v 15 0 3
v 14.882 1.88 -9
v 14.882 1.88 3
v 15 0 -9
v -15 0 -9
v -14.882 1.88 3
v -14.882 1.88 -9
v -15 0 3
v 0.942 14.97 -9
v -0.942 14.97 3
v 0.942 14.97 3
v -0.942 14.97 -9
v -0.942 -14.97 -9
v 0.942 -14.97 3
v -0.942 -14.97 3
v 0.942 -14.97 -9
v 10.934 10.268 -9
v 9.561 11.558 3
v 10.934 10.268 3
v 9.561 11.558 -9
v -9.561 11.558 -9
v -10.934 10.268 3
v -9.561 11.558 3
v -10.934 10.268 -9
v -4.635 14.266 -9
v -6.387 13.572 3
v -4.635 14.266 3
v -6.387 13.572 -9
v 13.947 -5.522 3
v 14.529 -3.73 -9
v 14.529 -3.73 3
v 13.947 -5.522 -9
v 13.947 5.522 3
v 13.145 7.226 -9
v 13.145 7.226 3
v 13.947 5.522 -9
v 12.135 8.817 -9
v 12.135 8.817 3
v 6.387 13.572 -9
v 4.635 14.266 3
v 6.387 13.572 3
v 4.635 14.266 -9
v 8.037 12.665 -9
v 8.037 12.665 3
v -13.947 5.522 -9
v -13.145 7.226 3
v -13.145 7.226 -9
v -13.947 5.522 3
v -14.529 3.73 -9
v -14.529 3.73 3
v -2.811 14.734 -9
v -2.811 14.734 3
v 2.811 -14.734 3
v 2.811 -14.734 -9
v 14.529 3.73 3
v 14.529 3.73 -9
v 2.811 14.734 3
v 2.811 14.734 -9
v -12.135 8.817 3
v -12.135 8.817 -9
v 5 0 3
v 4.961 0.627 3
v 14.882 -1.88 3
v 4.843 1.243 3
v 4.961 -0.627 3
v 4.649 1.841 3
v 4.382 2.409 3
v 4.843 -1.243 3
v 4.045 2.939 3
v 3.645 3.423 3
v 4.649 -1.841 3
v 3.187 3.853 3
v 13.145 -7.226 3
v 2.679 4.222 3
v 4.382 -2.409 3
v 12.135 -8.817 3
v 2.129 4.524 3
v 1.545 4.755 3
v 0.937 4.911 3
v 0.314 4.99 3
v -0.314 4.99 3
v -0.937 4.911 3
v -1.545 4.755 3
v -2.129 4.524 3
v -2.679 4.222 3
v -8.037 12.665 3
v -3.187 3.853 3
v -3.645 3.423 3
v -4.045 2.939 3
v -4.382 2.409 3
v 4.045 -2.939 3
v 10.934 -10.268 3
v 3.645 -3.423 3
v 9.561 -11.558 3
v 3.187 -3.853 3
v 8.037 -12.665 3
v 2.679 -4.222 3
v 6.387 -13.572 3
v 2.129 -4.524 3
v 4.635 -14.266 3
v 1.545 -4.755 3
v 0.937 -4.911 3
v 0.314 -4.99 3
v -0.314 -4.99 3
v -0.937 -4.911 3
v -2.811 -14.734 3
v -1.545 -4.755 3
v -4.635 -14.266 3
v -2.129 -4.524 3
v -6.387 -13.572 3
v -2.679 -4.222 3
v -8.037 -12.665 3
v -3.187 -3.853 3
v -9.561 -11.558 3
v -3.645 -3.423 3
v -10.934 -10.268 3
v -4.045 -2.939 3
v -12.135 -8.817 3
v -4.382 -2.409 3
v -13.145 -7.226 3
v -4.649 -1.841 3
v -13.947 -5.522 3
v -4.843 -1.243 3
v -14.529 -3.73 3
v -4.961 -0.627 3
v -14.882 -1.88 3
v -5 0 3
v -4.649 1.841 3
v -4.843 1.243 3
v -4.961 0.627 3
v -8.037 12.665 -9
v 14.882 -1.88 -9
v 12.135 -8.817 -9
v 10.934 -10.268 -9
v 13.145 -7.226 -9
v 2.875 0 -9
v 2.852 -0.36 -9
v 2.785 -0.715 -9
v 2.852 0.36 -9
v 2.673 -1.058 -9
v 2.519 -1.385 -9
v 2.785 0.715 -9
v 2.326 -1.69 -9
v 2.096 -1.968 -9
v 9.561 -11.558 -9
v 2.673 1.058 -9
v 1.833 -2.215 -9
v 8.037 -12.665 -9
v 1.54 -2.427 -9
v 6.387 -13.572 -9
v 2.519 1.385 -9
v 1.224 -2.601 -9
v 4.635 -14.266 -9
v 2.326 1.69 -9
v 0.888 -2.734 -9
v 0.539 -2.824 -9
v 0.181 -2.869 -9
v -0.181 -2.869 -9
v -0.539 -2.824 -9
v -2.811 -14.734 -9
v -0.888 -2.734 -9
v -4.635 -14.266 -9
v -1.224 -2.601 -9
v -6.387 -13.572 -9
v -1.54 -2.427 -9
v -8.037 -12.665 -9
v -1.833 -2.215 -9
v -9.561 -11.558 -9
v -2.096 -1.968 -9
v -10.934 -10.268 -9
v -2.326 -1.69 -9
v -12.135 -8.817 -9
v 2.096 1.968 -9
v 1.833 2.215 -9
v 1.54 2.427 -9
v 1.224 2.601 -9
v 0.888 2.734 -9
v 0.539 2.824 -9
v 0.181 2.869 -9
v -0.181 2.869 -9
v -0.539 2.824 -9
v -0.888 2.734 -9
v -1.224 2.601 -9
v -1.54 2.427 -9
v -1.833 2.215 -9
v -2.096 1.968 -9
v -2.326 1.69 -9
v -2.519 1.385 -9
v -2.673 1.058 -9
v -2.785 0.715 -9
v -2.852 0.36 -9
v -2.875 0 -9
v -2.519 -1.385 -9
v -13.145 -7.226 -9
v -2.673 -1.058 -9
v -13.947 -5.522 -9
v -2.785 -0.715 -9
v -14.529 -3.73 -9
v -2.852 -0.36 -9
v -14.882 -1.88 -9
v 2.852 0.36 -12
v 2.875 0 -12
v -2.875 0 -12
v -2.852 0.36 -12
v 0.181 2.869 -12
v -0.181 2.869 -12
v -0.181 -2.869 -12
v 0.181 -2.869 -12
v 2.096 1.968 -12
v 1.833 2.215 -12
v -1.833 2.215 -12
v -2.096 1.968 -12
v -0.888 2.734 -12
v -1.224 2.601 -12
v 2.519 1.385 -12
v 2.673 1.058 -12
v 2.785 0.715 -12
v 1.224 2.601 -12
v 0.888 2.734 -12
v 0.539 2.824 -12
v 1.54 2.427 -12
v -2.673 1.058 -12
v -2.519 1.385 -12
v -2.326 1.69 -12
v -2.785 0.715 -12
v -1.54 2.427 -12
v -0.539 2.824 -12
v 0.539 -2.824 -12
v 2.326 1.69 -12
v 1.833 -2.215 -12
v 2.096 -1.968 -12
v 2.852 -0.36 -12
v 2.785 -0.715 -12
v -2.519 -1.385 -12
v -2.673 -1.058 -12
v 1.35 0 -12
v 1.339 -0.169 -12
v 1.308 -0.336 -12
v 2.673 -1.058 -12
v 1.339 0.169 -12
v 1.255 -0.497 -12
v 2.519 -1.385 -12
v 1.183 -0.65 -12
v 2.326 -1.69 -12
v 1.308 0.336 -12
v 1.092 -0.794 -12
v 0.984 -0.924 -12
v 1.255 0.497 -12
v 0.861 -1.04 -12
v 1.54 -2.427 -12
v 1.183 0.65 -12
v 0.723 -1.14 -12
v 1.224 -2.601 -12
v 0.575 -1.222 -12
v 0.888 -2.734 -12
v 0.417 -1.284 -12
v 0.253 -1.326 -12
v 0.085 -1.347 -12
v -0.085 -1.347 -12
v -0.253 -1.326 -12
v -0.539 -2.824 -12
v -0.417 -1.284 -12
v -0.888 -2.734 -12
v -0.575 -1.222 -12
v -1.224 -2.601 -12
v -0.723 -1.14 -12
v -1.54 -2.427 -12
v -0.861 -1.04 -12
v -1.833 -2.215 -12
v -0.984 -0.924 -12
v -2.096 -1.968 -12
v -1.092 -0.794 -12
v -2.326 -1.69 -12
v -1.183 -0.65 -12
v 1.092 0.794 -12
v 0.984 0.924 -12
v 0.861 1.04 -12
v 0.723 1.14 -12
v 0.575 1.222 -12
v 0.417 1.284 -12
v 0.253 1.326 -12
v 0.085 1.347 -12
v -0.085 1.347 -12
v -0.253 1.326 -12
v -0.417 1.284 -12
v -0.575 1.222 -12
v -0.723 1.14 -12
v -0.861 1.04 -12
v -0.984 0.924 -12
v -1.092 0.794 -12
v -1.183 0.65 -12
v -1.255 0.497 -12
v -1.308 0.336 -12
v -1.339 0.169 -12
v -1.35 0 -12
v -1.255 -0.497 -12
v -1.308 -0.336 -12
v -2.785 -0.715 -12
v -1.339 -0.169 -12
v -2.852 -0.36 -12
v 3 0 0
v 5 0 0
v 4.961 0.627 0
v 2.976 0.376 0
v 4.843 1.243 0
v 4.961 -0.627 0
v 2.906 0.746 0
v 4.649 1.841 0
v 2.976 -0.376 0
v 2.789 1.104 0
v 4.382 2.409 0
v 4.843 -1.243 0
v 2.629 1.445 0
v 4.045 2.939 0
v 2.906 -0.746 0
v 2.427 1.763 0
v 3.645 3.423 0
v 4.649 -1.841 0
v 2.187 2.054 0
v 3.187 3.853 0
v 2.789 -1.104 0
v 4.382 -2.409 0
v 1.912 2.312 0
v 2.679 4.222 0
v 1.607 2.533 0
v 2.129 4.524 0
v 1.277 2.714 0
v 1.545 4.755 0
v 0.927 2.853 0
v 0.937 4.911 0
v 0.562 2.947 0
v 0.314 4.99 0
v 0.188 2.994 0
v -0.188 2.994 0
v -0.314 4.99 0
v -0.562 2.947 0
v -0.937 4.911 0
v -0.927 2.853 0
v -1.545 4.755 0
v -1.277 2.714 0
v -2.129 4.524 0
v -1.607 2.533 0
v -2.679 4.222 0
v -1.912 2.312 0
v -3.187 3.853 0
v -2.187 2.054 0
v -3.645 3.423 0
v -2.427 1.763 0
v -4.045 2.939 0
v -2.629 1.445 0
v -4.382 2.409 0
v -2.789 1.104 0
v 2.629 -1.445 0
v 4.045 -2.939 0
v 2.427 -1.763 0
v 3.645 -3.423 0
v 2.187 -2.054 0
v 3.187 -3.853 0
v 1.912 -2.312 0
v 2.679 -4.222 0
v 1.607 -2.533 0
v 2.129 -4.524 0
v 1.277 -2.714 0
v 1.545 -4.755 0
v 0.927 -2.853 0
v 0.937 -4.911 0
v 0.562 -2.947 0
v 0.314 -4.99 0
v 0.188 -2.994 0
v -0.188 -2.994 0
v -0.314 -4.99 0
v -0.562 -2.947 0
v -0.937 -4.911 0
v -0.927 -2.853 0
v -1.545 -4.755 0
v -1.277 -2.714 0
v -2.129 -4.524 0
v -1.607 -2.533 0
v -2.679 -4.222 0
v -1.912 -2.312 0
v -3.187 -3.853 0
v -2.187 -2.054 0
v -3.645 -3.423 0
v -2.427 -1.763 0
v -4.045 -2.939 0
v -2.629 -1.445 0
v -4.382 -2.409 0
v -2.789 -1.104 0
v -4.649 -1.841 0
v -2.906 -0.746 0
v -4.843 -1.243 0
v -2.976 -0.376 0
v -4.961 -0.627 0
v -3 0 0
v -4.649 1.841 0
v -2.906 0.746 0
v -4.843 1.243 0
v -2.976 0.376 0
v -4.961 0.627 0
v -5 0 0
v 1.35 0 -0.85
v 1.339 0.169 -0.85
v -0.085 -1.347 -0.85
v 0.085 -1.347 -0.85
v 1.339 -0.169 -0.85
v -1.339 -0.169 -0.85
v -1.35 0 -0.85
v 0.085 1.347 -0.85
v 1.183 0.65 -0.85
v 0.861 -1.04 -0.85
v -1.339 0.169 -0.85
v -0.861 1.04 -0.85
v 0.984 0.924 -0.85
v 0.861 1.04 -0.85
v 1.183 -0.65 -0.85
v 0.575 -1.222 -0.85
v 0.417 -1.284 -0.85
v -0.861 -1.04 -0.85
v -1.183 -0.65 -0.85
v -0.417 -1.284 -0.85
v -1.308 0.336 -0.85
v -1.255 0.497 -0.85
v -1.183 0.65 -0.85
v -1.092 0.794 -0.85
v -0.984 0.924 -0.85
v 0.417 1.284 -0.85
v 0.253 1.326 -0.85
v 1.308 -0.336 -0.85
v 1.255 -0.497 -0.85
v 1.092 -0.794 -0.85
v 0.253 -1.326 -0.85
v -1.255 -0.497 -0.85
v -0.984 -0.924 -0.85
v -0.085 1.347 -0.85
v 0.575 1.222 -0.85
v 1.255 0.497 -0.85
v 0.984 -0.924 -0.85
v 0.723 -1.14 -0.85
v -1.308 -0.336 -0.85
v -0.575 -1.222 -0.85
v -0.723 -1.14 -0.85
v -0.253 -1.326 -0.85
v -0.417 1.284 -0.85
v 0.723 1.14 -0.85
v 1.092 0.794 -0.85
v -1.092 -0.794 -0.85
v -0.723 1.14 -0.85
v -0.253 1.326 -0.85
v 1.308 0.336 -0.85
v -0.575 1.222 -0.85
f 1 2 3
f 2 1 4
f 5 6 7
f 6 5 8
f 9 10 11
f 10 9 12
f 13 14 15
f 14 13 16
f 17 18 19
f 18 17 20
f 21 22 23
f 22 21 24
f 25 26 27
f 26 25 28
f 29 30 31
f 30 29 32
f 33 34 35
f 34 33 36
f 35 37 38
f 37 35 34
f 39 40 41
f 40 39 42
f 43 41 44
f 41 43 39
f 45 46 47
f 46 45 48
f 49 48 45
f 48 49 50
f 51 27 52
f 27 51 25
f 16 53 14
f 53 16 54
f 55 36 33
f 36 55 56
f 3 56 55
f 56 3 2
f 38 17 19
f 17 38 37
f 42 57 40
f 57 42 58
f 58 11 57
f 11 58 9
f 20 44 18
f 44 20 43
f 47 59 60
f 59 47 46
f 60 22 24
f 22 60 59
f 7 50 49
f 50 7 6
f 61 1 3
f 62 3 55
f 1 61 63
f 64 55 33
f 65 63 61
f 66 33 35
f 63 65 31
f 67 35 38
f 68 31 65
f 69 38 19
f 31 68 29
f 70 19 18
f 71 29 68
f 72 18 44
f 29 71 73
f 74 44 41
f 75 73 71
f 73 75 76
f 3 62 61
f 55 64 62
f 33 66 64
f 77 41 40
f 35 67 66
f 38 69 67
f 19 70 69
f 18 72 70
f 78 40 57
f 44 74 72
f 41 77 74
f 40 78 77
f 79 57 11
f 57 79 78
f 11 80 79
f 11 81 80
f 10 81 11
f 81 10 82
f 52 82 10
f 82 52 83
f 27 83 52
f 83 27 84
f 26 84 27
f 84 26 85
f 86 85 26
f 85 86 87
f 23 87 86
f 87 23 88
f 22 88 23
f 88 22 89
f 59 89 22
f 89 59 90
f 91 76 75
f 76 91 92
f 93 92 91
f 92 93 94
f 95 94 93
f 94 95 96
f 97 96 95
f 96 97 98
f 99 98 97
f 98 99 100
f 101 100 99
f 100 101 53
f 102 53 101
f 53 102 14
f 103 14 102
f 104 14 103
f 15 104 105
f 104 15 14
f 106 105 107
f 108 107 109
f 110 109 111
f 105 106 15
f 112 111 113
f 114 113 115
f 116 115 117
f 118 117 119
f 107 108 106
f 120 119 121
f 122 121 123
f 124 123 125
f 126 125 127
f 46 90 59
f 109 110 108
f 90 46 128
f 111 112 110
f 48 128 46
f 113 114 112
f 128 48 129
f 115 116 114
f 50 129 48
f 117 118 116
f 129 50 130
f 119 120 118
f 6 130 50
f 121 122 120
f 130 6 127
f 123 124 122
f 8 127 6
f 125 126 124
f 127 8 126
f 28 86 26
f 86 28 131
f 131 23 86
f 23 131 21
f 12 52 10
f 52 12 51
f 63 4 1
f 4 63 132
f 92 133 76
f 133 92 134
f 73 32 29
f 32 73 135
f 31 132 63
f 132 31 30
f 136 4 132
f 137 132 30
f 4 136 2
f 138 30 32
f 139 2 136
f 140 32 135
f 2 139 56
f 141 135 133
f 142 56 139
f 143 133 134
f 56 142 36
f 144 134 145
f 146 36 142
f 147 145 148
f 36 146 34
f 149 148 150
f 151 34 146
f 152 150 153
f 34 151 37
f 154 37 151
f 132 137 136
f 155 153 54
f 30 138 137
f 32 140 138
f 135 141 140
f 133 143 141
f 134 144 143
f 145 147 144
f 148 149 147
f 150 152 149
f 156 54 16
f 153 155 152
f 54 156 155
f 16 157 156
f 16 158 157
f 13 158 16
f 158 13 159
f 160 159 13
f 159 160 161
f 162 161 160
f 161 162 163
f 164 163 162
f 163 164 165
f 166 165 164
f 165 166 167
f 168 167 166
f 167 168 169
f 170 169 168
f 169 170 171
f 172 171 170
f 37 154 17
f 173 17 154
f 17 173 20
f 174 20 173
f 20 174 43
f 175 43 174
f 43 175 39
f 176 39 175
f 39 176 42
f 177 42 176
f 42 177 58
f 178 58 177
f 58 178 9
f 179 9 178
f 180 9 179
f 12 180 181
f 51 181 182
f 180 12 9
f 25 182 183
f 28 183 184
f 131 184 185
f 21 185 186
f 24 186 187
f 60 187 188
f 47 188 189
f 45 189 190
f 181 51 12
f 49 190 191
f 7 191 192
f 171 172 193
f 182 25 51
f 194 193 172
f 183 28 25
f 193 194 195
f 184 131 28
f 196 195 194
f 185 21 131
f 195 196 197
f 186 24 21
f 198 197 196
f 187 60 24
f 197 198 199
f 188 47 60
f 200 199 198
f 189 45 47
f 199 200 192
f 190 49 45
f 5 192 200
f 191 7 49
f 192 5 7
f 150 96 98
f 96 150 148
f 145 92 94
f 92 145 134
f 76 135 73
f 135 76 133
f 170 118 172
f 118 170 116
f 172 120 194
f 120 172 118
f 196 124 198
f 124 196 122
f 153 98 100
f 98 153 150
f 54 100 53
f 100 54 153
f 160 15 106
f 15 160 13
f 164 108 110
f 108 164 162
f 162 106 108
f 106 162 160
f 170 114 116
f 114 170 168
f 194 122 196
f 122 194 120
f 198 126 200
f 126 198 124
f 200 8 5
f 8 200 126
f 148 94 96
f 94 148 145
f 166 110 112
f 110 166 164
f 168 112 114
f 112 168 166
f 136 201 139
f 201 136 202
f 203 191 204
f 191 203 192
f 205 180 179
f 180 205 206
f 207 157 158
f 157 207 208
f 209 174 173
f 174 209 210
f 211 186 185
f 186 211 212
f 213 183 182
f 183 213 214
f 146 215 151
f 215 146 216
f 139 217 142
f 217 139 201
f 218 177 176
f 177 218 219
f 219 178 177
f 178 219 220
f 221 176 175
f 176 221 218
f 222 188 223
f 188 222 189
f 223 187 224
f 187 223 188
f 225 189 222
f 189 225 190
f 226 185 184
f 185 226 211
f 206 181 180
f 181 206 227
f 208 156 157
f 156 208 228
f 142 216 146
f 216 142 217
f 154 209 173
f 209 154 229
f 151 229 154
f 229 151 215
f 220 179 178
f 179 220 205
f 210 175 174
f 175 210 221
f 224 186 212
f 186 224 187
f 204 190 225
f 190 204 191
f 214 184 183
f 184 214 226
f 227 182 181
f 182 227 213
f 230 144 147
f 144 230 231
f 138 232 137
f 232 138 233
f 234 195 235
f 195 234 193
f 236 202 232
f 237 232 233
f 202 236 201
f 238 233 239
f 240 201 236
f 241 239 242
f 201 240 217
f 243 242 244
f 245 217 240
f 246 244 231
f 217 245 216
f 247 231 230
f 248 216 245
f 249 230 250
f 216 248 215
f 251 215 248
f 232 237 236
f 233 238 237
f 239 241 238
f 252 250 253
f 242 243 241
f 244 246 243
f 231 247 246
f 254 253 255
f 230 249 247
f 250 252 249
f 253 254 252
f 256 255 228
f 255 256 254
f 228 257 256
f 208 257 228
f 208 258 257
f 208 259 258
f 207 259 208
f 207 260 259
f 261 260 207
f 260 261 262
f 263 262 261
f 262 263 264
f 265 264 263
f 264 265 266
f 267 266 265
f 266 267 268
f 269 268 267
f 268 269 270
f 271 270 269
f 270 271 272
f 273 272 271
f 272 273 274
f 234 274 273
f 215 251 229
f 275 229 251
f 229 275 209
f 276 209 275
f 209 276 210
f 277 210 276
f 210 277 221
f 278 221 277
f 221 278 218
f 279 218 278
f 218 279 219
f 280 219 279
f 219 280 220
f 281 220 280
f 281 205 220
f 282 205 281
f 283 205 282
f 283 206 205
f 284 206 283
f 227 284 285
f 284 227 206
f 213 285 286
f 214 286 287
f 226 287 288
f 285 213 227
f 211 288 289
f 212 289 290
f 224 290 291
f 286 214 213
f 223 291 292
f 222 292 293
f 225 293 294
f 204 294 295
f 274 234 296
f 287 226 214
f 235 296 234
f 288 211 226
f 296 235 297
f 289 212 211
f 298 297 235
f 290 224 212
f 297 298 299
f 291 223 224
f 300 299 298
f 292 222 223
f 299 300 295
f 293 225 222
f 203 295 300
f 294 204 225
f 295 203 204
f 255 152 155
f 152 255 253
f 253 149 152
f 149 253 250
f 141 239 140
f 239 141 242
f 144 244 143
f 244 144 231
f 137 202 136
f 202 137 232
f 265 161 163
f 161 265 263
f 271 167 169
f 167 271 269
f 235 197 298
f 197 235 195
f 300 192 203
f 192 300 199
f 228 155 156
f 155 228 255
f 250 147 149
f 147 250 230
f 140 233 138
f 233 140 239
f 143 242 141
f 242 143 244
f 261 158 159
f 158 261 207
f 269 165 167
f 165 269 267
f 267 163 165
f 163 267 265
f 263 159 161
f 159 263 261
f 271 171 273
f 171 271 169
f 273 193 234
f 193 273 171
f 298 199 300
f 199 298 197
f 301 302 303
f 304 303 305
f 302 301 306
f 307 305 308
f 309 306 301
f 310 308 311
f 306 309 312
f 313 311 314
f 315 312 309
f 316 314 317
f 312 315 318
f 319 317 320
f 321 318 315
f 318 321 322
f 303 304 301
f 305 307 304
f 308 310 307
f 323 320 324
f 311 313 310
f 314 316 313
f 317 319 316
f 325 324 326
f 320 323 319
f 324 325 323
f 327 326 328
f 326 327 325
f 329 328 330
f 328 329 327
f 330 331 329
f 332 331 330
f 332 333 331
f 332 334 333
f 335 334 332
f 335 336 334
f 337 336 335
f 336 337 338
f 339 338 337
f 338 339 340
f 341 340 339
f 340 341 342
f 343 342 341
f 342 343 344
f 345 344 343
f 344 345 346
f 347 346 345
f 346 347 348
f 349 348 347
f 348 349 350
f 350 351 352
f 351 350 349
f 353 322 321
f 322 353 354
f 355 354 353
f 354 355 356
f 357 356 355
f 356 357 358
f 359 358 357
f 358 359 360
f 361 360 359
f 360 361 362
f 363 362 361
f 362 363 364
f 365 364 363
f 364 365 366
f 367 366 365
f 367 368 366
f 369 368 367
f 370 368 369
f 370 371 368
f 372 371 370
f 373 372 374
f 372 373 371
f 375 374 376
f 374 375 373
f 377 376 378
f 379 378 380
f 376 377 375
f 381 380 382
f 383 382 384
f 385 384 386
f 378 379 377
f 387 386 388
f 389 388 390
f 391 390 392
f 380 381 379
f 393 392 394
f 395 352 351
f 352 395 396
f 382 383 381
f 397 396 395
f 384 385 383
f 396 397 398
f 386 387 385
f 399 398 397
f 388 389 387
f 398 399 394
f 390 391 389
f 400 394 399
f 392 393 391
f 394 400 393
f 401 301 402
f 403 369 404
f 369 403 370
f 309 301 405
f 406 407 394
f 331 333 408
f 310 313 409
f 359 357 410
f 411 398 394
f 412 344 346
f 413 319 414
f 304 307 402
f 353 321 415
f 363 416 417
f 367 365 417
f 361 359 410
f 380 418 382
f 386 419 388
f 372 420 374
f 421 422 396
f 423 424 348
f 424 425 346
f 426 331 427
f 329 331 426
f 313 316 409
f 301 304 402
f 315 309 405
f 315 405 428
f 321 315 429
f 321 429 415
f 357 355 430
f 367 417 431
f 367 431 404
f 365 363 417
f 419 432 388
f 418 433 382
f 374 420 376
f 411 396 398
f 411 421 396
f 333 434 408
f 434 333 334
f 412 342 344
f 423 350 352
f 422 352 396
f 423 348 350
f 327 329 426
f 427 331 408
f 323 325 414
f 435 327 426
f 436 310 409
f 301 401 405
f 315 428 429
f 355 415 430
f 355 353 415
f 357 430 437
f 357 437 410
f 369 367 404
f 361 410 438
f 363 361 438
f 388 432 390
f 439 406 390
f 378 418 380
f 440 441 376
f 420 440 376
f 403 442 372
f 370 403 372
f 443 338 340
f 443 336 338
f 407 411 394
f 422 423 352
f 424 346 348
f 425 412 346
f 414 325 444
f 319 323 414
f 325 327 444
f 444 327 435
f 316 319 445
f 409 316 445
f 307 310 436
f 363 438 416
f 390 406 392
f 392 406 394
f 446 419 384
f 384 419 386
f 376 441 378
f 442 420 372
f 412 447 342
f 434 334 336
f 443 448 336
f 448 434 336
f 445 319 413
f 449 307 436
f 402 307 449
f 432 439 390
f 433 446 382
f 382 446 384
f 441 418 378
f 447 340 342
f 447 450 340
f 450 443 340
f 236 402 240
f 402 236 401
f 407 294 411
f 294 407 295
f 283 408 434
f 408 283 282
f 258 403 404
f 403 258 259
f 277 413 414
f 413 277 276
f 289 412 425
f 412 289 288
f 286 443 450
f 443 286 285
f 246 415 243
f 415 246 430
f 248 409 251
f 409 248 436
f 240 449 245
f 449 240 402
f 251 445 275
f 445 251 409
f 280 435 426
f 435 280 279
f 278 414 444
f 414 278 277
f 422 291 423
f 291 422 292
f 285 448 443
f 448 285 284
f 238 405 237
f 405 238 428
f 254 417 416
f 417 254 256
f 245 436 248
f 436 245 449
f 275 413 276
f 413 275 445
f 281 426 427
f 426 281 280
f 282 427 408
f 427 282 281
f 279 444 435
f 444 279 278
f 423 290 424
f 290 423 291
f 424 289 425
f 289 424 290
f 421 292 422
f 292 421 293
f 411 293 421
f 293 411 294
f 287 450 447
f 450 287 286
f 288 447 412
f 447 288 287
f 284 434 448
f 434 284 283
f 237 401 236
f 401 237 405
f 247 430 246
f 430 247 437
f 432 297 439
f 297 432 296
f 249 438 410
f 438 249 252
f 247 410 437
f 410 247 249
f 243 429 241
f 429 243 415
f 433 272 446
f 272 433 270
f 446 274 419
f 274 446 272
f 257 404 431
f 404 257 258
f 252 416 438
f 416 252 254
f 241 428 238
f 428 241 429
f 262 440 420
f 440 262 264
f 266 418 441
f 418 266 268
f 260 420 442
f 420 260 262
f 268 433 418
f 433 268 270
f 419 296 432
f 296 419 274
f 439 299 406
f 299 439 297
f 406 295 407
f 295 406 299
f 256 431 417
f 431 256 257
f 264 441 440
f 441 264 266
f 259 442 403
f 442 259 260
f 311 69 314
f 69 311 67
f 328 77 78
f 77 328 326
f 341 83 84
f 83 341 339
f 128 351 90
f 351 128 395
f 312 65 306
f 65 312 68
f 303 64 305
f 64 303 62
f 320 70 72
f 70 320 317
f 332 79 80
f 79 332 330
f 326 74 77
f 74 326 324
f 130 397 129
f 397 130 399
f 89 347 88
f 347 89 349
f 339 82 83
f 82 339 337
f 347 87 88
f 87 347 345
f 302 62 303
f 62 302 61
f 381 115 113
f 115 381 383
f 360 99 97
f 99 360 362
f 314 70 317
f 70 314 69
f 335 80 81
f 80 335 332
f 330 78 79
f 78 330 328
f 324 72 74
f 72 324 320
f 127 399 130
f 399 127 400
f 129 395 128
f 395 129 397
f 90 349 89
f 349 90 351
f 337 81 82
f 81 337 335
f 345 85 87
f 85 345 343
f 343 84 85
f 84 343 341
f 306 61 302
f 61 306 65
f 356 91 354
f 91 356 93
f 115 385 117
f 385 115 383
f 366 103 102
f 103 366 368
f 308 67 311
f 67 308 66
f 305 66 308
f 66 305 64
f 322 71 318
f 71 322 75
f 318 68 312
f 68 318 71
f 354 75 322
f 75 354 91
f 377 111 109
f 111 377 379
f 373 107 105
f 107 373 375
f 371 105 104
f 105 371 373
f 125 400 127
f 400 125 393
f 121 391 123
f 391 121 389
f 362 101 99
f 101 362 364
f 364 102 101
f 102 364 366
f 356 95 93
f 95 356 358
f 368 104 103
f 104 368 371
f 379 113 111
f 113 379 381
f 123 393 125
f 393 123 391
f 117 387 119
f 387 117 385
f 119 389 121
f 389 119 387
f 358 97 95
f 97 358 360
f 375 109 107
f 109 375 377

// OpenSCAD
$fn = 50;


difference() {
	union() {
		translate(v = [0, 0, -9.0000000000]) {
			cylinder(h = 12, r = 15.0000000000);
		}
		#translate(v = [0, 0, -12.0000000000]) {
			cylinder(h = 12, r = 2.8750000000);
		}
	}
	union() {
		translate(v = [0, 0, 0]) {
			rotate(a = [0, 0, 0]) {
				difference() {
					union() {
						translate(v = [0, 0, -12.0000000000]) {
							cylinder(h = 12, r = 1.0000000000);
						}
						translate(v = [0, 0, -0.8500000000]) {
							cylinder(h = 0.8500000000, r1 = 1.3500000000, r2 = 3.0000000000);
						}
						translate(v = [0, 0, -12.0000000000]) {
							cylinder(h = 12, r = 1.3500000000);
						}
						translate(v = [0, 0, -12.0000000000]) {
							cylinder(h = 12, r = 1.0000000000);
						}
					}
					union();
				}
			}
		}
		#cylinder(h = 3, r = 5.0000000000);
	}
}
